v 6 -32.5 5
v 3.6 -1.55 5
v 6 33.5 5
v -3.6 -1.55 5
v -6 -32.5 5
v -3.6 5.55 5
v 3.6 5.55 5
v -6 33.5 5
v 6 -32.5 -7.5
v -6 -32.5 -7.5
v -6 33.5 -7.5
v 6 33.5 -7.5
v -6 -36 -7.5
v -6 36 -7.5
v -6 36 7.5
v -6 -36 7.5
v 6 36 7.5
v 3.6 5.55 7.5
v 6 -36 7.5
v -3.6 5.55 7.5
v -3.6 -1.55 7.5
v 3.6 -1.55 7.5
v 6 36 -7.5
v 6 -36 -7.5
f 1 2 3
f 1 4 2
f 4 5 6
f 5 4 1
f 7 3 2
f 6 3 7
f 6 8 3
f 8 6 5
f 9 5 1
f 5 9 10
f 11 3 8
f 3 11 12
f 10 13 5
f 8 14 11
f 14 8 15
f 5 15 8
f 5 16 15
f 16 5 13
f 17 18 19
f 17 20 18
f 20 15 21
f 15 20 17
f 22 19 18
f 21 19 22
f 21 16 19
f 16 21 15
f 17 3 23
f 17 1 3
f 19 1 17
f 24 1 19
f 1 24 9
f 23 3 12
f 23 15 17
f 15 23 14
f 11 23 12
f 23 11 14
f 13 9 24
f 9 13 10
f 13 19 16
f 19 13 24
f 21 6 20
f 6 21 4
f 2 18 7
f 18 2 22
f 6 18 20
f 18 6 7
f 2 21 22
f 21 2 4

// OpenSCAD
module meter() {
union() {
cube([110,51,30],center=true);
translate([-22,33,0])cube([52,15,30],center=true);
}
%translate([3,9,15])cube([66,7,8],center=true); //dials
%translate([-26,9,15])cube([8,7,10],center=true); //dial with reflective spot
}

difference() {
cube([12,72,15],center=true);
translate([0,2,10]) cube([7.2,7.1,15],center=true);
translate([26.5,-7,-10]) #meter();
}
